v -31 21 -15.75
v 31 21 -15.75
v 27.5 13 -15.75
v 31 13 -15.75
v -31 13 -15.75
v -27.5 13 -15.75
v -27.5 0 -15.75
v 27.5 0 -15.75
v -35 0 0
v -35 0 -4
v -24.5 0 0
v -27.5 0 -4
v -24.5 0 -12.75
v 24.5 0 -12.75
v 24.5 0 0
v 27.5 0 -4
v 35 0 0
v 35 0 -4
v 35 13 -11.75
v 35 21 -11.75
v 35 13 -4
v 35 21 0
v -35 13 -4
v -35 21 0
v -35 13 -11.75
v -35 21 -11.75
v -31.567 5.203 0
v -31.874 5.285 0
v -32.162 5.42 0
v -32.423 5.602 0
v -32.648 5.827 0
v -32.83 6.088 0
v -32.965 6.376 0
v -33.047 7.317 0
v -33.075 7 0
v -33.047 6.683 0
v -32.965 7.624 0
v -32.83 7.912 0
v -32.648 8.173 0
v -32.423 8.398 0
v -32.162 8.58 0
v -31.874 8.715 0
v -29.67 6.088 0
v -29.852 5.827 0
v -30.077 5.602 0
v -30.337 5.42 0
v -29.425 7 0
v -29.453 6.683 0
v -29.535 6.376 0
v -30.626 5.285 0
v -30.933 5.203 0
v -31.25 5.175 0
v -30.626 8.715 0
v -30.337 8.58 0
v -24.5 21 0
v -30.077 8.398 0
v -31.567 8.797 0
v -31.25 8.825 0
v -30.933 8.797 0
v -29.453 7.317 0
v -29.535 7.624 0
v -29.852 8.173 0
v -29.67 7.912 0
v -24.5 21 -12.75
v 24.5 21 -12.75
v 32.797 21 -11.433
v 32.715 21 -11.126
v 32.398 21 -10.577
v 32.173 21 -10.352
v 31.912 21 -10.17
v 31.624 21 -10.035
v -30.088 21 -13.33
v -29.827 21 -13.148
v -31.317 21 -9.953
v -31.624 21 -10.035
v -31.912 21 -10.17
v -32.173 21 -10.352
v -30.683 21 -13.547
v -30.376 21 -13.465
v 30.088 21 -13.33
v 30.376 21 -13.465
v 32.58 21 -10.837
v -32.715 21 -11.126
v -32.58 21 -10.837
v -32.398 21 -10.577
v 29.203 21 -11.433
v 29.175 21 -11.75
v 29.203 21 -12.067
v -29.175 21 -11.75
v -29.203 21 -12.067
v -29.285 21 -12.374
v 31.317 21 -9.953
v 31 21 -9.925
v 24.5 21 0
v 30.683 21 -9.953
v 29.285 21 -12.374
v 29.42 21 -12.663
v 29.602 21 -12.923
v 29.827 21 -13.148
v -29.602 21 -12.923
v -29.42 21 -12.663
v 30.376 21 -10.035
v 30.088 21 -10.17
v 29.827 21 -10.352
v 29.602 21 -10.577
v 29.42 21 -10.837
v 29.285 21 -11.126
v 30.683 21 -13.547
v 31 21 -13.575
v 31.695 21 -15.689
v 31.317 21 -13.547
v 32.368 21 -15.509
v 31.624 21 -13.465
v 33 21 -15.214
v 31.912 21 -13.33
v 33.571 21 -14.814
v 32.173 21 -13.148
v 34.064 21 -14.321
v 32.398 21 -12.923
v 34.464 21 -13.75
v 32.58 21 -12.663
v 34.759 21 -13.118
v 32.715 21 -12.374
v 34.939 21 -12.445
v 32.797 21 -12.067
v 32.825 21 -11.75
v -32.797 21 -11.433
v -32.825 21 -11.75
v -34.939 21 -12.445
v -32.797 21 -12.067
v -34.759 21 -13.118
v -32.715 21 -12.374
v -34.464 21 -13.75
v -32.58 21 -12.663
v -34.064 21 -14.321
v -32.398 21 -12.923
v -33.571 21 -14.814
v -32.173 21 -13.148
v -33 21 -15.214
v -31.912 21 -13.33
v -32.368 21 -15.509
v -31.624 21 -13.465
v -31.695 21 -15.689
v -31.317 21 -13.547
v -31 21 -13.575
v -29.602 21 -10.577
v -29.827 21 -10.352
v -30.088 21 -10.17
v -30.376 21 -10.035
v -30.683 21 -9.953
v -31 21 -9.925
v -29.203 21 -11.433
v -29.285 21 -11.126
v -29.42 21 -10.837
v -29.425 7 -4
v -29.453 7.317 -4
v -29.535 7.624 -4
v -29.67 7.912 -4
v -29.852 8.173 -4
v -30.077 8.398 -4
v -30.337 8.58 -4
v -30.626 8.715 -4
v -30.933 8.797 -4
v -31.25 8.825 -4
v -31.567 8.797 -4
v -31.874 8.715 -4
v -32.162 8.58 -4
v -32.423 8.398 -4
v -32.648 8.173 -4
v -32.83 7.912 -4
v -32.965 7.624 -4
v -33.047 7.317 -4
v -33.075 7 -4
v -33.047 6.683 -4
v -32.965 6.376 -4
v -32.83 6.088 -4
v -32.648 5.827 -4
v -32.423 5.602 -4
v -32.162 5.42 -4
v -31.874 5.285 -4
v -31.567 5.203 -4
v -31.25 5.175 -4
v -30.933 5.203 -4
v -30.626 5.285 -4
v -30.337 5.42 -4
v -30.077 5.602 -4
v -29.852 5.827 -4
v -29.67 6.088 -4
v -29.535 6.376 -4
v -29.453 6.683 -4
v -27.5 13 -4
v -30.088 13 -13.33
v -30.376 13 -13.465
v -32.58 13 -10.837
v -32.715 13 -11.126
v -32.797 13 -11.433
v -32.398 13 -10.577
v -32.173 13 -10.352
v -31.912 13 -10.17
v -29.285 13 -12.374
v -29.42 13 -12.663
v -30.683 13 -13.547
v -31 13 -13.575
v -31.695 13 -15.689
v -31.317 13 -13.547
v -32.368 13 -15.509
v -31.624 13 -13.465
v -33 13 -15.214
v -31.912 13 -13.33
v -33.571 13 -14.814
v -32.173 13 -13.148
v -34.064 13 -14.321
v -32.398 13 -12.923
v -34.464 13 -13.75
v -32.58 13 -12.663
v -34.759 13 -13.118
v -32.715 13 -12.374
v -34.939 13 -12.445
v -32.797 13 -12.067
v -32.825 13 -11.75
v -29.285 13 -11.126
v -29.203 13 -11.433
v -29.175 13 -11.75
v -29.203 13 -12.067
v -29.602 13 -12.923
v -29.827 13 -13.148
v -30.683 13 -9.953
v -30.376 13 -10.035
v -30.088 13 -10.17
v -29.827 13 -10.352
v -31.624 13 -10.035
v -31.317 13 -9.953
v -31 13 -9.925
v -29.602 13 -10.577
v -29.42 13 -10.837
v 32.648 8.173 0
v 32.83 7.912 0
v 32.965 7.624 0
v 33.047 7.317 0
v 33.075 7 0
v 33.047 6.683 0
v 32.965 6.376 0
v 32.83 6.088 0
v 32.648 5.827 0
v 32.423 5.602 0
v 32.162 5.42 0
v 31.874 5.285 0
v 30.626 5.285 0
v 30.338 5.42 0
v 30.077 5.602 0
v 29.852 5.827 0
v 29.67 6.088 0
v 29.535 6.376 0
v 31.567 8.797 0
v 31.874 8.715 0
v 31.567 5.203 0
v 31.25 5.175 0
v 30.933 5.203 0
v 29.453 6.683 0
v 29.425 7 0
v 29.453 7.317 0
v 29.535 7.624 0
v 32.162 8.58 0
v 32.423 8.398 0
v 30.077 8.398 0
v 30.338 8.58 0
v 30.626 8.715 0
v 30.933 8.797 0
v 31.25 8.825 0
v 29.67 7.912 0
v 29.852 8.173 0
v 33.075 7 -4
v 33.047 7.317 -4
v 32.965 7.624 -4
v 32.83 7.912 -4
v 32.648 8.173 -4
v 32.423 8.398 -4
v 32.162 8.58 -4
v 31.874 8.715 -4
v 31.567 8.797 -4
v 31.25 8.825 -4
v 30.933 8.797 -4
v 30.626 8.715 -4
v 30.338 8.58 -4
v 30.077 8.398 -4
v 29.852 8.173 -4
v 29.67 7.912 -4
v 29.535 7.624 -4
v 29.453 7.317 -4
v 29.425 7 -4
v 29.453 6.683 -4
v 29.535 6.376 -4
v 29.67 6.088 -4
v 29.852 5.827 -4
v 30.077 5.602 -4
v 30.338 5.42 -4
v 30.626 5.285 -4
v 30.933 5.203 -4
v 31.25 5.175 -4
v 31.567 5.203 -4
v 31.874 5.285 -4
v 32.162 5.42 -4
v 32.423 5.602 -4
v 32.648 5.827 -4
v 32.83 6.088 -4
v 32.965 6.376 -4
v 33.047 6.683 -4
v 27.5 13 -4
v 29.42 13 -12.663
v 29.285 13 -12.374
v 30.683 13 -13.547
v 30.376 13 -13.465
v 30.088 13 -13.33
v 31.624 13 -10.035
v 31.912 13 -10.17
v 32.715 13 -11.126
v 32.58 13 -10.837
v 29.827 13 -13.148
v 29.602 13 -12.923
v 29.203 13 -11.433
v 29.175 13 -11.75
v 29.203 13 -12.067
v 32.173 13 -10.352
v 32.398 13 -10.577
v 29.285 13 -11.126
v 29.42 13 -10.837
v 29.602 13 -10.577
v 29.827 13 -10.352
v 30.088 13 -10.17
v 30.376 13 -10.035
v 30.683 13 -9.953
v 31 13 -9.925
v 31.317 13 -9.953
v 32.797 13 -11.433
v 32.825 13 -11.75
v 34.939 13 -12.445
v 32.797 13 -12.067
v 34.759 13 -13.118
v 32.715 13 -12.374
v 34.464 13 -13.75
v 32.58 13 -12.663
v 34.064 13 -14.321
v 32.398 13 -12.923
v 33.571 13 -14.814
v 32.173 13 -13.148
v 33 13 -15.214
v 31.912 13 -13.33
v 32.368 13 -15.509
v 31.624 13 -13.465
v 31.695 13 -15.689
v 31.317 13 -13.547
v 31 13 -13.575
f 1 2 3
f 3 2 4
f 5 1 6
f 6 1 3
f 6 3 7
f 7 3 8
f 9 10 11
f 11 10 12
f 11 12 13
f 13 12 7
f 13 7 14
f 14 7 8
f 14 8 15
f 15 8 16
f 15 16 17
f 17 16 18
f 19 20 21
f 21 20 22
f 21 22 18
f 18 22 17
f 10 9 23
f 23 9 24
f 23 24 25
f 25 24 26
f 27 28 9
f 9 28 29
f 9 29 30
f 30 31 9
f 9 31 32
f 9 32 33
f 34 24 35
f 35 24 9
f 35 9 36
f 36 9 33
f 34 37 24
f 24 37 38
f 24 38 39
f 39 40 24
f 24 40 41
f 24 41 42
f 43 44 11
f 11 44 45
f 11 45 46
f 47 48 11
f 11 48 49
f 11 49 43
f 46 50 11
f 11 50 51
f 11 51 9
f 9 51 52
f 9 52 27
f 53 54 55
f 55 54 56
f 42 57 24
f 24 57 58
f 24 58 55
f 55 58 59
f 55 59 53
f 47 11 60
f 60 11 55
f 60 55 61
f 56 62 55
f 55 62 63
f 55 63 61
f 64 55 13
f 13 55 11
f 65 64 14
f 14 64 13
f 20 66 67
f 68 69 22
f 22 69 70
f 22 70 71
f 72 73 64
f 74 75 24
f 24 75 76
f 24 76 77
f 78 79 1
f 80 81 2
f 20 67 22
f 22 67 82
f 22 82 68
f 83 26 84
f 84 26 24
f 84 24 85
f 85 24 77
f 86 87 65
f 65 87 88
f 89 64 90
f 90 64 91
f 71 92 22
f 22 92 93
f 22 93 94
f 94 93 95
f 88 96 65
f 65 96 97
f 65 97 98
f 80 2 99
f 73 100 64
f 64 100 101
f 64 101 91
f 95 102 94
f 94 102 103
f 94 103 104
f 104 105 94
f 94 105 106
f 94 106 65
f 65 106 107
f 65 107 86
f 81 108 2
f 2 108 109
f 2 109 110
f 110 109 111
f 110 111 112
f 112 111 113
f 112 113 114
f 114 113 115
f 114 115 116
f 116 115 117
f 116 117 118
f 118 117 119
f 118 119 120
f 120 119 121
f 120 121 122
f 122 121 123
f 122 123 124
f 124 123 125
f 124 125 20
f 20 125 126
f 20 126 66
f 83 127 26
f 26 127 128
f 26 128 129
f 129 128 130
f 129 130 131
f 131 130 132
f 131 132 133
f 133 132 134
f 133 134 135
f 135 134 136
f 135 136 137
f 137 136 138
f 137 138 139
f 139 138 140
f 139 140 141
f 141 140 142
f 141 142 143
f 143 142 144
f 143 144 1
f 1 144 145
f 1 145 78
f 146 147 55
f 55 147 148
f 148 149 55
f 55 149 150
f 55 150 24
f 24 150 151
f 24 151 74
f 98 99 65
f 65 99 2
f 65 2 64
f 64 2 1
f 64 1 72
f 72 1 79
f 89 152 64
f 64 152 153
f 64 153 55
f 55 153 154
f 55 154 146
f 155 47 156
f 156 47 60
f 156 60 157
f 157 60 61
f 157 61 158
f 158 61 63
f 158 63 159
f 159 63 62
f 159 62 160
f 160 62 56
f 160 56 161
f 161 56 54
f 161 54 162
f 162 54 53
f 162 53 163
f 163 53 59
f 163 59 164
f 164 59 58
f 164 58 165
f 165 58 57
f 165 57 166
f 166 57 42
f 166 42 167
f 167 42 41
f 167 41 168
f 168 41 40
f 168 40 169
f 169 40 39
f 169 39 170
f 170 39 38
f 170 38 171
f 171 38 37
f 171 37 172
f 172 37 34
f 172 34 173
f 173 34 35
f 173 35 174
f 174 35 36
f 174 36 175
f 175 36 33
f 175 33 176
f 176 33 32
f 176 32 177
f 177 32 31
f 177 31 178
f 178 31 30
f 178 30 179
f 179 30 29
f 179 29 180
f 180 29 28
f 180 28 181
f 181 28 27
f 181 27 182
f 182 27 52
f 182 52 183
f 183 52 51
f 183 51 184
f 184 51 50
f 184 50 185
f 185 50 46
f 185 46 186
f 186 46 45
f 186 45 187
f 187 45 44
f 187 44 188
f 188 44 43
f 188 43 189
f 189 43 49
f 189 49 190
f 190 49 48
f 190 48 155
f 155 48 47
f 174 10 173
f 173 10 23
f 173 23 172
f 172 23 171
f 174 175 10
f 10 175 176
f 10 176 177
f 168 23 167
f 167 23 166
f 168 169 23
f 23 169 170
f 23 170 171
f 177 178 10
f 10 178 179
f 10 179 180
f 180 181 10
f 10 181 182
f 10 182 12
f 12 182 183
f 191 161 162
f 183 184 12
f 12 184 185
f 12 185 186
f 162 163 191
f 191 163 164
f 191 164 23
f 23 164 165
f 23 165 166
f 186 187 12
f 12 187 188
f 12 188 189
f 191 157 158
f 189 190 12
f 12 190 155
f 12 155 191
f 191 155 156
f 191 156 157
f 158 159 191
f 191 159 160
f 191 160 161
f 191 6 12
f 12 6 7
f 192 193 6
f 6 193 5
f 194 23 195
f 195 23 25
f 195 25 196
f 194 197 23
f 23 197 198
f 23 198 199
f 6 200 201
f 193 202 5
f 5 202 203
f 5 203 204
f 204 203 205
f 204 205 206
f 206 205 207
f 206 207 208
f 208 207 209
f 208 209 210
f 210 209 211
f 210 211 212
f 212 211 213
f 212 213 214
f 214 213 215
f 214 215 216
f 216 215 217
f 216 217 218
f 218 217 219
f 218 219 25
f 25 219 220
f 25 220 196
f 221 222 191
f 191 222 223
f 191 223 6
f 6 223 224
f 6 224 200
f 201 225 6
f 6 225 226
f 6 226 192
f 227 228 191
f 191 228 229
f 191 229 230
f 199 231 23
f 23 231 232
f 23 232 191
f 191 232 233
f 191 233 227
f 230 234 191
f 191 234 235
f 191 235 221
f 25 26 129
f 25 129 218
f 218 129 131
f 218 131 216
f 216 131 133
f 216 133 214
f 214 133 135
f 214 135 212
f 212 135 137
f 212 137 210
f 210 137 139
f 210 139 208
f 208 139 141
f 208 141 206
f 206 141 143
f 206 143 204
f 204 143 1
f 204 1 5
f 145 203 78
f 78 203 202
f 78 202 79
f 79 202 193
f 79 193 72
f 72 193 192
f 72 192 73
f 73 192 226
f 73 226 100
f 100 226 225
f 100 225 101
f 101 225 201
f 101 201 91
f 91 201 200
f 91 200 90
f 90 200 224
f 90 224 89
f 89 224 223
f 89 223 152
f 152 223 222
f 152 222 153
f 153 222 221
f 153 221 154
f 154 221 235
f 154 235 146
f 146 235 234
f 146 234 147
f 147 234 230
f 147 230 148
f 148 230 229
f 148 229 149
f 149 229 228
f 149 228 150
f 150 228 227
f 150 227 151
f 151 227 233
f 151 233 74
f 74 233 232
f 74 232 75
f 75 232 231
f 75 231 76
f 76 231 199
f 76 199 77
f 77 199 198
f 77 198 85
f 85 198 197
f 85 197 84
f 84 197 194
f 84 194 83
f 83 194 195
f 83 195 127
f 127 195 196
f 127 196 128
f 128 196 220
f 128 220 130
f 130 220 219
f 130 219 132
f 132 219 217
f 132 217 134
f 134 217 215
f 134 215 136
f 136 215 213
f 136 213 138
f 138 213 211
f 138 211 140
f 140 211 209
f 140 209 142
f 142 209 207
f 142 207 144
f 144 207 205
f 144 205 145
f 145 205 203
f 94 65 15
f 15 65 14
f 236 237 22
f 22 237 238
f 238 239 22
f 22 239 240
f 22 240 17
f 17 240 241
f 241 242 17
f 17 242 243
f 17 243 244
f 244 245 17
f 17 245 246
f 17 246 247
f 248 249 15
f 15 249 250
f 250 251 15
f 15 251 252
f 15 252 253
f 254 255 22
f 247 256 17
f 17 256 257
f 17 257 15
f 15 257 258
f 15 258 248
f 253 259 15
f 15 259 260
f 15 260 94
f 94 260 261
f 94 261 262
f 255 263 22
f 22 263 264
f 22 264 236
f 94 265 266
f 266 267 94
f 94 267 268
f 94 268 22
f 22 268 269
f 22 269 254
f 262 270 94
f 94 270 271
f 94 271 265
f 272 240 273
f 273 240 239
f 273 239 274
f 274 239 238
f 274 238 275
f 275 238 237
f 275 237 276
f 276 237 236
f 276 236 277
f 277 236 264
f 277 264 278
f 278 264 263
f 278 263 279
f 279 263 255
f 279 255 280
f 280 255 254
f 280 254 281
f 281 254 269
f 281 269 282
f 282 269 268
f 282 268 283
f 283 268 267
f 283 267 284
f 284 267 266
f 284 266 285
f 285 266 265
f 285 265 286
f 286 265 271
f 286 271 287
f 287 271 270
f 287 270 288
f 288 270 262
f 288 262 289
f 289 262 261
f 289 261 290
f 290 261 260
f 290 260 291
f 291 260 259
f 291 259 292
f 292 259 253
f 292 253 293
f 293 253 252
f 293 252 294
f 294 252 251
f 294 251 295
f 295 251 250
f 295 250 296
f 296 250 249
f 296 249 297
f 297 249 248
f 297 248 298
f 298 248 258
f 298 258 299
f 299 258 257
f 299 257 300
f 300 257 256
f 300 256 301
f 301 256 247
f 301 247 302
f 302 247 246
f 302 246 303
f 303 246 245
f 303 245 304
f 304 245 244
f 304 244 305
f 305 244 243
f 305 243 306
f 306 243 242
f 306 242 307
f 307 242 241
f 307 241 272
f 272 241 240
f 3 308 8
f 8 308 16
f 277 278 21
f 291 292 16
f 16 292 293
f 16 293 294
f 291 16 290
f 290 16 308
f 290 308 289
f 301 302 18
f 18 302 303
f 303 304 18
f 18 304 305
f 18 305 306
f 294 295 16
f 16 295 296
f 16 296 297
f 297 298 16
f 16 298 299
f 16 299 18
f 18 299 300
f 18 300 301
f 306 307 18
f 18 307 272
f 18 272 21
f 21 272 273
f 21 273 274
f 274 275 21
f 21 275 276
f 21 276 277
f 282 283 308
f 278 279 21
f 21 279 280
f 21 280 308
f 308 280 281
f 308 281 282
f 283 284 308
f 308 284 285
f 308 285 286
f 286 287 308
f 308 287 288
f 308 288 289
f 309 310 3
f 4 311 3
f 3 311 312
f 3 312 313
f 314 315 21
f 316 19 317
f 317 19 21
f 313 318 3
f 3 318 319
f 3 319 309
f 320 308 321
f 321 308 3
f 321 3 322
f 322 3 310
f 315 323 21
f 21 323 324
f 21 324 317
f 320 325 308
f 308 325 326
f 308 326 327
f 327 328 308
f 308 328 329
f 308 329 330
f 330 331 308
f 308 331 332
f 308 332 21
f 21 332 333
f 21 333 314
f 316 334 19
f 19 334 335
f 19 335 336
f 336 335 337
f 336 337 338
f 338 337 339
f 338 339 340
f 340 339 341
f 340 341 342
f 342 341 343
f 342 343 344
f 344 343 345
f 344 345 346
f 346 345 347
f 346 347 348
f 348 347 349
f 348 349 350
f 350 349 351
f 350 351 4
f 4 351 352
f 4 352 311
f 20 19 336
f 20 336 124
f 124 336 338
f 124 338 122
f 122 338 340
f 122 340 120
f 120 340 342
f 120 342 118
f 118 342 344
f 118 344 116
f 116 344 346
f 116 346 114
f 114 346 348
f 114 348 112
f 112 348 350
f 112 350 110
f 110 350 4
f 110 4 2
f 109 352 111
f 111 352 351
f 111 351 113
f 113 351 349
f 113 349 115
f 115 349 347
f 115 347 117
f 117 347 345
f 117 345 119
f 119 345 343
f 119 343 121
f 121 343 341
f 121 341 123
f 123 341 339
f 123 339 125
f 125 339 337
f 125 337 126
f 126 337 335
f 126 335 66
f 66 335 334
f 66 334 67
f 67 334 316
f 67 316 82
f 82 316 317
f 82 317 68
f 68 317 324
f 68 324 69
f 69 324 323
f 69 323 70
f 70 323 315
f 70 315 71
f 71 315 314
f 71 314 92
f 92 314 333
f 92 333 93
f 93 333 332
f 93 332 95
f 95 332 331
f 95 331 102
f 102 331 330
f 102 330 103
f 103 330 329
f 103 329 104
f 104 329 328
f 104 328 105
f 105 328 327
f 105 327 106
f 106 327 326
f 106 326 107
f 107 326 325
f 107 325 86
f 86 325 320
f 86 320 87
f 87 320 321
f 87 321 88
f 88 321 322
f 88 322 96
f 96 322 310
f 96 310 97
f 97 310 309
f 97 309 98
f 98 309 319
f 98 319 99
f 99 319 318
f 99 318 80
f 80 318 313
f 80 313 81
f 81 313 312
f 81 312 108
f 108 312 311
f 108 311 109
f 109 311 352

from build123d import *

# Parameters (mm, degrees)
BOSS_EXTRUDE1_DEPTH  = 21
SKETCH2_R            = 1.825
CUT_EXTRUDE1_DEPTH   = 4
SKETCH3_W            = 7.5
SKETCH3_H            = 11.75
CUT_EXTRUDE2_DEPTH   = 13
FILLET1_R            = 4
SKETCH5_R            = 1.825
CUT_EXTRUDE3_DEPTH   = 41.522370365
FILLET1_OF_MIRROR1_R = 4


with BuildPart() as part:
    # Sketch1 → Boss-Extrude1 (new body)
    with BuildSketch(Plane(origin=(0, 0, 0), x_dir=(1, 0, 0), z_dir=(0, 1, 0))):
        Polygon((-24.5, 0), (-24.5, 12.75), (0, 12.75), (0, 15.75), (-35, 15.75), (-35, 0), align=None)
    boss_extrude1 = extrude(amount=BOSS_EXTRUDE1_DEPTH)

    # Sketch2 → Cut-Extrude1 (cut)
    with BuildSketch(Plane.XY):
        with Locations((-31.25, 7)):
            Circle(SKETCH2_R)
    cut_extrude1 = extrude(amount=-CUT_EXTRUDE1_DEPTH, mode=Mode.SUBTRACT)

    # Sketch3 → Cut-Extrude2 (cut)
    with BuildSketch(Plane.XZ):
        with Locations((-31.25, -9.875)):
            Rectangle(SKETCH3_W, SKETCH3_H)
    cut_extrude2 = extrude(amount=-CUT_EXTRUDE2_DEPTH, mode=Mode.SUBTRACT)

    # Fillet1
    fillet1_edges = [part.edges().sort_by_distance(p)[0] for p in [
        (-35, 17, -15.75),
    ]]
    fillet(fillet1_edges, radius=FILLET1_R)

    # Sketch5 → Cut-Extrude3 (cut, through all)
    with BuildSketch(Plane.XZ.offset(-13)):
        with Locations(Location((-31, -11.75, 0), (0, 0, 270))):
            Circle(SKETCH5_R)
    cut_extrude3 = extrude(amount=-CUT_EXTRUDE3_DEPTH, mode=Mode.SUBTRACT)

    # Mirror1: Boss-Extrude1, Cut-Extrude1, Cut-Extrude2, Cut-Extrude3 across plane
    add(boss_extrude1.mirror(Plane(origin=(0, 21, 0), x_dir=(0, 0, 1), z_dir=(-1, 0, 0))))
    add(cut_extrude1.mirror(Plane(origin=(0, 21, 0), x_dir=(0, 0, 1), z_dir=(-1, 0, 0))), mode=Mode.SUBTRACT)
    add(cut_extrude2.mirror(Plane(origin=(0, 21, 0), x_dir=(0, 0, 1), z_dir=(-1, 0, 0))), mode=Mode.SUBTRACT)
    add(cut_extrude3.mirror(Plane(origin=(0, 21, 0), x_dir=(0, 0, 1), z_dir=(-1, 0, 0))), mode=Mode.SUBTRACT)

    # Fillet1 of Mirror1
    fillet1_of_mirror1_edges = [part.edges().sort_by_distance(p)[0] for p in [
        (35, 17, -15.75),
    ]]
    fillet(fillet1_of_mirror1_edges, radius=FILLET1_OF_MIRROR1_R)


solid = part.part
